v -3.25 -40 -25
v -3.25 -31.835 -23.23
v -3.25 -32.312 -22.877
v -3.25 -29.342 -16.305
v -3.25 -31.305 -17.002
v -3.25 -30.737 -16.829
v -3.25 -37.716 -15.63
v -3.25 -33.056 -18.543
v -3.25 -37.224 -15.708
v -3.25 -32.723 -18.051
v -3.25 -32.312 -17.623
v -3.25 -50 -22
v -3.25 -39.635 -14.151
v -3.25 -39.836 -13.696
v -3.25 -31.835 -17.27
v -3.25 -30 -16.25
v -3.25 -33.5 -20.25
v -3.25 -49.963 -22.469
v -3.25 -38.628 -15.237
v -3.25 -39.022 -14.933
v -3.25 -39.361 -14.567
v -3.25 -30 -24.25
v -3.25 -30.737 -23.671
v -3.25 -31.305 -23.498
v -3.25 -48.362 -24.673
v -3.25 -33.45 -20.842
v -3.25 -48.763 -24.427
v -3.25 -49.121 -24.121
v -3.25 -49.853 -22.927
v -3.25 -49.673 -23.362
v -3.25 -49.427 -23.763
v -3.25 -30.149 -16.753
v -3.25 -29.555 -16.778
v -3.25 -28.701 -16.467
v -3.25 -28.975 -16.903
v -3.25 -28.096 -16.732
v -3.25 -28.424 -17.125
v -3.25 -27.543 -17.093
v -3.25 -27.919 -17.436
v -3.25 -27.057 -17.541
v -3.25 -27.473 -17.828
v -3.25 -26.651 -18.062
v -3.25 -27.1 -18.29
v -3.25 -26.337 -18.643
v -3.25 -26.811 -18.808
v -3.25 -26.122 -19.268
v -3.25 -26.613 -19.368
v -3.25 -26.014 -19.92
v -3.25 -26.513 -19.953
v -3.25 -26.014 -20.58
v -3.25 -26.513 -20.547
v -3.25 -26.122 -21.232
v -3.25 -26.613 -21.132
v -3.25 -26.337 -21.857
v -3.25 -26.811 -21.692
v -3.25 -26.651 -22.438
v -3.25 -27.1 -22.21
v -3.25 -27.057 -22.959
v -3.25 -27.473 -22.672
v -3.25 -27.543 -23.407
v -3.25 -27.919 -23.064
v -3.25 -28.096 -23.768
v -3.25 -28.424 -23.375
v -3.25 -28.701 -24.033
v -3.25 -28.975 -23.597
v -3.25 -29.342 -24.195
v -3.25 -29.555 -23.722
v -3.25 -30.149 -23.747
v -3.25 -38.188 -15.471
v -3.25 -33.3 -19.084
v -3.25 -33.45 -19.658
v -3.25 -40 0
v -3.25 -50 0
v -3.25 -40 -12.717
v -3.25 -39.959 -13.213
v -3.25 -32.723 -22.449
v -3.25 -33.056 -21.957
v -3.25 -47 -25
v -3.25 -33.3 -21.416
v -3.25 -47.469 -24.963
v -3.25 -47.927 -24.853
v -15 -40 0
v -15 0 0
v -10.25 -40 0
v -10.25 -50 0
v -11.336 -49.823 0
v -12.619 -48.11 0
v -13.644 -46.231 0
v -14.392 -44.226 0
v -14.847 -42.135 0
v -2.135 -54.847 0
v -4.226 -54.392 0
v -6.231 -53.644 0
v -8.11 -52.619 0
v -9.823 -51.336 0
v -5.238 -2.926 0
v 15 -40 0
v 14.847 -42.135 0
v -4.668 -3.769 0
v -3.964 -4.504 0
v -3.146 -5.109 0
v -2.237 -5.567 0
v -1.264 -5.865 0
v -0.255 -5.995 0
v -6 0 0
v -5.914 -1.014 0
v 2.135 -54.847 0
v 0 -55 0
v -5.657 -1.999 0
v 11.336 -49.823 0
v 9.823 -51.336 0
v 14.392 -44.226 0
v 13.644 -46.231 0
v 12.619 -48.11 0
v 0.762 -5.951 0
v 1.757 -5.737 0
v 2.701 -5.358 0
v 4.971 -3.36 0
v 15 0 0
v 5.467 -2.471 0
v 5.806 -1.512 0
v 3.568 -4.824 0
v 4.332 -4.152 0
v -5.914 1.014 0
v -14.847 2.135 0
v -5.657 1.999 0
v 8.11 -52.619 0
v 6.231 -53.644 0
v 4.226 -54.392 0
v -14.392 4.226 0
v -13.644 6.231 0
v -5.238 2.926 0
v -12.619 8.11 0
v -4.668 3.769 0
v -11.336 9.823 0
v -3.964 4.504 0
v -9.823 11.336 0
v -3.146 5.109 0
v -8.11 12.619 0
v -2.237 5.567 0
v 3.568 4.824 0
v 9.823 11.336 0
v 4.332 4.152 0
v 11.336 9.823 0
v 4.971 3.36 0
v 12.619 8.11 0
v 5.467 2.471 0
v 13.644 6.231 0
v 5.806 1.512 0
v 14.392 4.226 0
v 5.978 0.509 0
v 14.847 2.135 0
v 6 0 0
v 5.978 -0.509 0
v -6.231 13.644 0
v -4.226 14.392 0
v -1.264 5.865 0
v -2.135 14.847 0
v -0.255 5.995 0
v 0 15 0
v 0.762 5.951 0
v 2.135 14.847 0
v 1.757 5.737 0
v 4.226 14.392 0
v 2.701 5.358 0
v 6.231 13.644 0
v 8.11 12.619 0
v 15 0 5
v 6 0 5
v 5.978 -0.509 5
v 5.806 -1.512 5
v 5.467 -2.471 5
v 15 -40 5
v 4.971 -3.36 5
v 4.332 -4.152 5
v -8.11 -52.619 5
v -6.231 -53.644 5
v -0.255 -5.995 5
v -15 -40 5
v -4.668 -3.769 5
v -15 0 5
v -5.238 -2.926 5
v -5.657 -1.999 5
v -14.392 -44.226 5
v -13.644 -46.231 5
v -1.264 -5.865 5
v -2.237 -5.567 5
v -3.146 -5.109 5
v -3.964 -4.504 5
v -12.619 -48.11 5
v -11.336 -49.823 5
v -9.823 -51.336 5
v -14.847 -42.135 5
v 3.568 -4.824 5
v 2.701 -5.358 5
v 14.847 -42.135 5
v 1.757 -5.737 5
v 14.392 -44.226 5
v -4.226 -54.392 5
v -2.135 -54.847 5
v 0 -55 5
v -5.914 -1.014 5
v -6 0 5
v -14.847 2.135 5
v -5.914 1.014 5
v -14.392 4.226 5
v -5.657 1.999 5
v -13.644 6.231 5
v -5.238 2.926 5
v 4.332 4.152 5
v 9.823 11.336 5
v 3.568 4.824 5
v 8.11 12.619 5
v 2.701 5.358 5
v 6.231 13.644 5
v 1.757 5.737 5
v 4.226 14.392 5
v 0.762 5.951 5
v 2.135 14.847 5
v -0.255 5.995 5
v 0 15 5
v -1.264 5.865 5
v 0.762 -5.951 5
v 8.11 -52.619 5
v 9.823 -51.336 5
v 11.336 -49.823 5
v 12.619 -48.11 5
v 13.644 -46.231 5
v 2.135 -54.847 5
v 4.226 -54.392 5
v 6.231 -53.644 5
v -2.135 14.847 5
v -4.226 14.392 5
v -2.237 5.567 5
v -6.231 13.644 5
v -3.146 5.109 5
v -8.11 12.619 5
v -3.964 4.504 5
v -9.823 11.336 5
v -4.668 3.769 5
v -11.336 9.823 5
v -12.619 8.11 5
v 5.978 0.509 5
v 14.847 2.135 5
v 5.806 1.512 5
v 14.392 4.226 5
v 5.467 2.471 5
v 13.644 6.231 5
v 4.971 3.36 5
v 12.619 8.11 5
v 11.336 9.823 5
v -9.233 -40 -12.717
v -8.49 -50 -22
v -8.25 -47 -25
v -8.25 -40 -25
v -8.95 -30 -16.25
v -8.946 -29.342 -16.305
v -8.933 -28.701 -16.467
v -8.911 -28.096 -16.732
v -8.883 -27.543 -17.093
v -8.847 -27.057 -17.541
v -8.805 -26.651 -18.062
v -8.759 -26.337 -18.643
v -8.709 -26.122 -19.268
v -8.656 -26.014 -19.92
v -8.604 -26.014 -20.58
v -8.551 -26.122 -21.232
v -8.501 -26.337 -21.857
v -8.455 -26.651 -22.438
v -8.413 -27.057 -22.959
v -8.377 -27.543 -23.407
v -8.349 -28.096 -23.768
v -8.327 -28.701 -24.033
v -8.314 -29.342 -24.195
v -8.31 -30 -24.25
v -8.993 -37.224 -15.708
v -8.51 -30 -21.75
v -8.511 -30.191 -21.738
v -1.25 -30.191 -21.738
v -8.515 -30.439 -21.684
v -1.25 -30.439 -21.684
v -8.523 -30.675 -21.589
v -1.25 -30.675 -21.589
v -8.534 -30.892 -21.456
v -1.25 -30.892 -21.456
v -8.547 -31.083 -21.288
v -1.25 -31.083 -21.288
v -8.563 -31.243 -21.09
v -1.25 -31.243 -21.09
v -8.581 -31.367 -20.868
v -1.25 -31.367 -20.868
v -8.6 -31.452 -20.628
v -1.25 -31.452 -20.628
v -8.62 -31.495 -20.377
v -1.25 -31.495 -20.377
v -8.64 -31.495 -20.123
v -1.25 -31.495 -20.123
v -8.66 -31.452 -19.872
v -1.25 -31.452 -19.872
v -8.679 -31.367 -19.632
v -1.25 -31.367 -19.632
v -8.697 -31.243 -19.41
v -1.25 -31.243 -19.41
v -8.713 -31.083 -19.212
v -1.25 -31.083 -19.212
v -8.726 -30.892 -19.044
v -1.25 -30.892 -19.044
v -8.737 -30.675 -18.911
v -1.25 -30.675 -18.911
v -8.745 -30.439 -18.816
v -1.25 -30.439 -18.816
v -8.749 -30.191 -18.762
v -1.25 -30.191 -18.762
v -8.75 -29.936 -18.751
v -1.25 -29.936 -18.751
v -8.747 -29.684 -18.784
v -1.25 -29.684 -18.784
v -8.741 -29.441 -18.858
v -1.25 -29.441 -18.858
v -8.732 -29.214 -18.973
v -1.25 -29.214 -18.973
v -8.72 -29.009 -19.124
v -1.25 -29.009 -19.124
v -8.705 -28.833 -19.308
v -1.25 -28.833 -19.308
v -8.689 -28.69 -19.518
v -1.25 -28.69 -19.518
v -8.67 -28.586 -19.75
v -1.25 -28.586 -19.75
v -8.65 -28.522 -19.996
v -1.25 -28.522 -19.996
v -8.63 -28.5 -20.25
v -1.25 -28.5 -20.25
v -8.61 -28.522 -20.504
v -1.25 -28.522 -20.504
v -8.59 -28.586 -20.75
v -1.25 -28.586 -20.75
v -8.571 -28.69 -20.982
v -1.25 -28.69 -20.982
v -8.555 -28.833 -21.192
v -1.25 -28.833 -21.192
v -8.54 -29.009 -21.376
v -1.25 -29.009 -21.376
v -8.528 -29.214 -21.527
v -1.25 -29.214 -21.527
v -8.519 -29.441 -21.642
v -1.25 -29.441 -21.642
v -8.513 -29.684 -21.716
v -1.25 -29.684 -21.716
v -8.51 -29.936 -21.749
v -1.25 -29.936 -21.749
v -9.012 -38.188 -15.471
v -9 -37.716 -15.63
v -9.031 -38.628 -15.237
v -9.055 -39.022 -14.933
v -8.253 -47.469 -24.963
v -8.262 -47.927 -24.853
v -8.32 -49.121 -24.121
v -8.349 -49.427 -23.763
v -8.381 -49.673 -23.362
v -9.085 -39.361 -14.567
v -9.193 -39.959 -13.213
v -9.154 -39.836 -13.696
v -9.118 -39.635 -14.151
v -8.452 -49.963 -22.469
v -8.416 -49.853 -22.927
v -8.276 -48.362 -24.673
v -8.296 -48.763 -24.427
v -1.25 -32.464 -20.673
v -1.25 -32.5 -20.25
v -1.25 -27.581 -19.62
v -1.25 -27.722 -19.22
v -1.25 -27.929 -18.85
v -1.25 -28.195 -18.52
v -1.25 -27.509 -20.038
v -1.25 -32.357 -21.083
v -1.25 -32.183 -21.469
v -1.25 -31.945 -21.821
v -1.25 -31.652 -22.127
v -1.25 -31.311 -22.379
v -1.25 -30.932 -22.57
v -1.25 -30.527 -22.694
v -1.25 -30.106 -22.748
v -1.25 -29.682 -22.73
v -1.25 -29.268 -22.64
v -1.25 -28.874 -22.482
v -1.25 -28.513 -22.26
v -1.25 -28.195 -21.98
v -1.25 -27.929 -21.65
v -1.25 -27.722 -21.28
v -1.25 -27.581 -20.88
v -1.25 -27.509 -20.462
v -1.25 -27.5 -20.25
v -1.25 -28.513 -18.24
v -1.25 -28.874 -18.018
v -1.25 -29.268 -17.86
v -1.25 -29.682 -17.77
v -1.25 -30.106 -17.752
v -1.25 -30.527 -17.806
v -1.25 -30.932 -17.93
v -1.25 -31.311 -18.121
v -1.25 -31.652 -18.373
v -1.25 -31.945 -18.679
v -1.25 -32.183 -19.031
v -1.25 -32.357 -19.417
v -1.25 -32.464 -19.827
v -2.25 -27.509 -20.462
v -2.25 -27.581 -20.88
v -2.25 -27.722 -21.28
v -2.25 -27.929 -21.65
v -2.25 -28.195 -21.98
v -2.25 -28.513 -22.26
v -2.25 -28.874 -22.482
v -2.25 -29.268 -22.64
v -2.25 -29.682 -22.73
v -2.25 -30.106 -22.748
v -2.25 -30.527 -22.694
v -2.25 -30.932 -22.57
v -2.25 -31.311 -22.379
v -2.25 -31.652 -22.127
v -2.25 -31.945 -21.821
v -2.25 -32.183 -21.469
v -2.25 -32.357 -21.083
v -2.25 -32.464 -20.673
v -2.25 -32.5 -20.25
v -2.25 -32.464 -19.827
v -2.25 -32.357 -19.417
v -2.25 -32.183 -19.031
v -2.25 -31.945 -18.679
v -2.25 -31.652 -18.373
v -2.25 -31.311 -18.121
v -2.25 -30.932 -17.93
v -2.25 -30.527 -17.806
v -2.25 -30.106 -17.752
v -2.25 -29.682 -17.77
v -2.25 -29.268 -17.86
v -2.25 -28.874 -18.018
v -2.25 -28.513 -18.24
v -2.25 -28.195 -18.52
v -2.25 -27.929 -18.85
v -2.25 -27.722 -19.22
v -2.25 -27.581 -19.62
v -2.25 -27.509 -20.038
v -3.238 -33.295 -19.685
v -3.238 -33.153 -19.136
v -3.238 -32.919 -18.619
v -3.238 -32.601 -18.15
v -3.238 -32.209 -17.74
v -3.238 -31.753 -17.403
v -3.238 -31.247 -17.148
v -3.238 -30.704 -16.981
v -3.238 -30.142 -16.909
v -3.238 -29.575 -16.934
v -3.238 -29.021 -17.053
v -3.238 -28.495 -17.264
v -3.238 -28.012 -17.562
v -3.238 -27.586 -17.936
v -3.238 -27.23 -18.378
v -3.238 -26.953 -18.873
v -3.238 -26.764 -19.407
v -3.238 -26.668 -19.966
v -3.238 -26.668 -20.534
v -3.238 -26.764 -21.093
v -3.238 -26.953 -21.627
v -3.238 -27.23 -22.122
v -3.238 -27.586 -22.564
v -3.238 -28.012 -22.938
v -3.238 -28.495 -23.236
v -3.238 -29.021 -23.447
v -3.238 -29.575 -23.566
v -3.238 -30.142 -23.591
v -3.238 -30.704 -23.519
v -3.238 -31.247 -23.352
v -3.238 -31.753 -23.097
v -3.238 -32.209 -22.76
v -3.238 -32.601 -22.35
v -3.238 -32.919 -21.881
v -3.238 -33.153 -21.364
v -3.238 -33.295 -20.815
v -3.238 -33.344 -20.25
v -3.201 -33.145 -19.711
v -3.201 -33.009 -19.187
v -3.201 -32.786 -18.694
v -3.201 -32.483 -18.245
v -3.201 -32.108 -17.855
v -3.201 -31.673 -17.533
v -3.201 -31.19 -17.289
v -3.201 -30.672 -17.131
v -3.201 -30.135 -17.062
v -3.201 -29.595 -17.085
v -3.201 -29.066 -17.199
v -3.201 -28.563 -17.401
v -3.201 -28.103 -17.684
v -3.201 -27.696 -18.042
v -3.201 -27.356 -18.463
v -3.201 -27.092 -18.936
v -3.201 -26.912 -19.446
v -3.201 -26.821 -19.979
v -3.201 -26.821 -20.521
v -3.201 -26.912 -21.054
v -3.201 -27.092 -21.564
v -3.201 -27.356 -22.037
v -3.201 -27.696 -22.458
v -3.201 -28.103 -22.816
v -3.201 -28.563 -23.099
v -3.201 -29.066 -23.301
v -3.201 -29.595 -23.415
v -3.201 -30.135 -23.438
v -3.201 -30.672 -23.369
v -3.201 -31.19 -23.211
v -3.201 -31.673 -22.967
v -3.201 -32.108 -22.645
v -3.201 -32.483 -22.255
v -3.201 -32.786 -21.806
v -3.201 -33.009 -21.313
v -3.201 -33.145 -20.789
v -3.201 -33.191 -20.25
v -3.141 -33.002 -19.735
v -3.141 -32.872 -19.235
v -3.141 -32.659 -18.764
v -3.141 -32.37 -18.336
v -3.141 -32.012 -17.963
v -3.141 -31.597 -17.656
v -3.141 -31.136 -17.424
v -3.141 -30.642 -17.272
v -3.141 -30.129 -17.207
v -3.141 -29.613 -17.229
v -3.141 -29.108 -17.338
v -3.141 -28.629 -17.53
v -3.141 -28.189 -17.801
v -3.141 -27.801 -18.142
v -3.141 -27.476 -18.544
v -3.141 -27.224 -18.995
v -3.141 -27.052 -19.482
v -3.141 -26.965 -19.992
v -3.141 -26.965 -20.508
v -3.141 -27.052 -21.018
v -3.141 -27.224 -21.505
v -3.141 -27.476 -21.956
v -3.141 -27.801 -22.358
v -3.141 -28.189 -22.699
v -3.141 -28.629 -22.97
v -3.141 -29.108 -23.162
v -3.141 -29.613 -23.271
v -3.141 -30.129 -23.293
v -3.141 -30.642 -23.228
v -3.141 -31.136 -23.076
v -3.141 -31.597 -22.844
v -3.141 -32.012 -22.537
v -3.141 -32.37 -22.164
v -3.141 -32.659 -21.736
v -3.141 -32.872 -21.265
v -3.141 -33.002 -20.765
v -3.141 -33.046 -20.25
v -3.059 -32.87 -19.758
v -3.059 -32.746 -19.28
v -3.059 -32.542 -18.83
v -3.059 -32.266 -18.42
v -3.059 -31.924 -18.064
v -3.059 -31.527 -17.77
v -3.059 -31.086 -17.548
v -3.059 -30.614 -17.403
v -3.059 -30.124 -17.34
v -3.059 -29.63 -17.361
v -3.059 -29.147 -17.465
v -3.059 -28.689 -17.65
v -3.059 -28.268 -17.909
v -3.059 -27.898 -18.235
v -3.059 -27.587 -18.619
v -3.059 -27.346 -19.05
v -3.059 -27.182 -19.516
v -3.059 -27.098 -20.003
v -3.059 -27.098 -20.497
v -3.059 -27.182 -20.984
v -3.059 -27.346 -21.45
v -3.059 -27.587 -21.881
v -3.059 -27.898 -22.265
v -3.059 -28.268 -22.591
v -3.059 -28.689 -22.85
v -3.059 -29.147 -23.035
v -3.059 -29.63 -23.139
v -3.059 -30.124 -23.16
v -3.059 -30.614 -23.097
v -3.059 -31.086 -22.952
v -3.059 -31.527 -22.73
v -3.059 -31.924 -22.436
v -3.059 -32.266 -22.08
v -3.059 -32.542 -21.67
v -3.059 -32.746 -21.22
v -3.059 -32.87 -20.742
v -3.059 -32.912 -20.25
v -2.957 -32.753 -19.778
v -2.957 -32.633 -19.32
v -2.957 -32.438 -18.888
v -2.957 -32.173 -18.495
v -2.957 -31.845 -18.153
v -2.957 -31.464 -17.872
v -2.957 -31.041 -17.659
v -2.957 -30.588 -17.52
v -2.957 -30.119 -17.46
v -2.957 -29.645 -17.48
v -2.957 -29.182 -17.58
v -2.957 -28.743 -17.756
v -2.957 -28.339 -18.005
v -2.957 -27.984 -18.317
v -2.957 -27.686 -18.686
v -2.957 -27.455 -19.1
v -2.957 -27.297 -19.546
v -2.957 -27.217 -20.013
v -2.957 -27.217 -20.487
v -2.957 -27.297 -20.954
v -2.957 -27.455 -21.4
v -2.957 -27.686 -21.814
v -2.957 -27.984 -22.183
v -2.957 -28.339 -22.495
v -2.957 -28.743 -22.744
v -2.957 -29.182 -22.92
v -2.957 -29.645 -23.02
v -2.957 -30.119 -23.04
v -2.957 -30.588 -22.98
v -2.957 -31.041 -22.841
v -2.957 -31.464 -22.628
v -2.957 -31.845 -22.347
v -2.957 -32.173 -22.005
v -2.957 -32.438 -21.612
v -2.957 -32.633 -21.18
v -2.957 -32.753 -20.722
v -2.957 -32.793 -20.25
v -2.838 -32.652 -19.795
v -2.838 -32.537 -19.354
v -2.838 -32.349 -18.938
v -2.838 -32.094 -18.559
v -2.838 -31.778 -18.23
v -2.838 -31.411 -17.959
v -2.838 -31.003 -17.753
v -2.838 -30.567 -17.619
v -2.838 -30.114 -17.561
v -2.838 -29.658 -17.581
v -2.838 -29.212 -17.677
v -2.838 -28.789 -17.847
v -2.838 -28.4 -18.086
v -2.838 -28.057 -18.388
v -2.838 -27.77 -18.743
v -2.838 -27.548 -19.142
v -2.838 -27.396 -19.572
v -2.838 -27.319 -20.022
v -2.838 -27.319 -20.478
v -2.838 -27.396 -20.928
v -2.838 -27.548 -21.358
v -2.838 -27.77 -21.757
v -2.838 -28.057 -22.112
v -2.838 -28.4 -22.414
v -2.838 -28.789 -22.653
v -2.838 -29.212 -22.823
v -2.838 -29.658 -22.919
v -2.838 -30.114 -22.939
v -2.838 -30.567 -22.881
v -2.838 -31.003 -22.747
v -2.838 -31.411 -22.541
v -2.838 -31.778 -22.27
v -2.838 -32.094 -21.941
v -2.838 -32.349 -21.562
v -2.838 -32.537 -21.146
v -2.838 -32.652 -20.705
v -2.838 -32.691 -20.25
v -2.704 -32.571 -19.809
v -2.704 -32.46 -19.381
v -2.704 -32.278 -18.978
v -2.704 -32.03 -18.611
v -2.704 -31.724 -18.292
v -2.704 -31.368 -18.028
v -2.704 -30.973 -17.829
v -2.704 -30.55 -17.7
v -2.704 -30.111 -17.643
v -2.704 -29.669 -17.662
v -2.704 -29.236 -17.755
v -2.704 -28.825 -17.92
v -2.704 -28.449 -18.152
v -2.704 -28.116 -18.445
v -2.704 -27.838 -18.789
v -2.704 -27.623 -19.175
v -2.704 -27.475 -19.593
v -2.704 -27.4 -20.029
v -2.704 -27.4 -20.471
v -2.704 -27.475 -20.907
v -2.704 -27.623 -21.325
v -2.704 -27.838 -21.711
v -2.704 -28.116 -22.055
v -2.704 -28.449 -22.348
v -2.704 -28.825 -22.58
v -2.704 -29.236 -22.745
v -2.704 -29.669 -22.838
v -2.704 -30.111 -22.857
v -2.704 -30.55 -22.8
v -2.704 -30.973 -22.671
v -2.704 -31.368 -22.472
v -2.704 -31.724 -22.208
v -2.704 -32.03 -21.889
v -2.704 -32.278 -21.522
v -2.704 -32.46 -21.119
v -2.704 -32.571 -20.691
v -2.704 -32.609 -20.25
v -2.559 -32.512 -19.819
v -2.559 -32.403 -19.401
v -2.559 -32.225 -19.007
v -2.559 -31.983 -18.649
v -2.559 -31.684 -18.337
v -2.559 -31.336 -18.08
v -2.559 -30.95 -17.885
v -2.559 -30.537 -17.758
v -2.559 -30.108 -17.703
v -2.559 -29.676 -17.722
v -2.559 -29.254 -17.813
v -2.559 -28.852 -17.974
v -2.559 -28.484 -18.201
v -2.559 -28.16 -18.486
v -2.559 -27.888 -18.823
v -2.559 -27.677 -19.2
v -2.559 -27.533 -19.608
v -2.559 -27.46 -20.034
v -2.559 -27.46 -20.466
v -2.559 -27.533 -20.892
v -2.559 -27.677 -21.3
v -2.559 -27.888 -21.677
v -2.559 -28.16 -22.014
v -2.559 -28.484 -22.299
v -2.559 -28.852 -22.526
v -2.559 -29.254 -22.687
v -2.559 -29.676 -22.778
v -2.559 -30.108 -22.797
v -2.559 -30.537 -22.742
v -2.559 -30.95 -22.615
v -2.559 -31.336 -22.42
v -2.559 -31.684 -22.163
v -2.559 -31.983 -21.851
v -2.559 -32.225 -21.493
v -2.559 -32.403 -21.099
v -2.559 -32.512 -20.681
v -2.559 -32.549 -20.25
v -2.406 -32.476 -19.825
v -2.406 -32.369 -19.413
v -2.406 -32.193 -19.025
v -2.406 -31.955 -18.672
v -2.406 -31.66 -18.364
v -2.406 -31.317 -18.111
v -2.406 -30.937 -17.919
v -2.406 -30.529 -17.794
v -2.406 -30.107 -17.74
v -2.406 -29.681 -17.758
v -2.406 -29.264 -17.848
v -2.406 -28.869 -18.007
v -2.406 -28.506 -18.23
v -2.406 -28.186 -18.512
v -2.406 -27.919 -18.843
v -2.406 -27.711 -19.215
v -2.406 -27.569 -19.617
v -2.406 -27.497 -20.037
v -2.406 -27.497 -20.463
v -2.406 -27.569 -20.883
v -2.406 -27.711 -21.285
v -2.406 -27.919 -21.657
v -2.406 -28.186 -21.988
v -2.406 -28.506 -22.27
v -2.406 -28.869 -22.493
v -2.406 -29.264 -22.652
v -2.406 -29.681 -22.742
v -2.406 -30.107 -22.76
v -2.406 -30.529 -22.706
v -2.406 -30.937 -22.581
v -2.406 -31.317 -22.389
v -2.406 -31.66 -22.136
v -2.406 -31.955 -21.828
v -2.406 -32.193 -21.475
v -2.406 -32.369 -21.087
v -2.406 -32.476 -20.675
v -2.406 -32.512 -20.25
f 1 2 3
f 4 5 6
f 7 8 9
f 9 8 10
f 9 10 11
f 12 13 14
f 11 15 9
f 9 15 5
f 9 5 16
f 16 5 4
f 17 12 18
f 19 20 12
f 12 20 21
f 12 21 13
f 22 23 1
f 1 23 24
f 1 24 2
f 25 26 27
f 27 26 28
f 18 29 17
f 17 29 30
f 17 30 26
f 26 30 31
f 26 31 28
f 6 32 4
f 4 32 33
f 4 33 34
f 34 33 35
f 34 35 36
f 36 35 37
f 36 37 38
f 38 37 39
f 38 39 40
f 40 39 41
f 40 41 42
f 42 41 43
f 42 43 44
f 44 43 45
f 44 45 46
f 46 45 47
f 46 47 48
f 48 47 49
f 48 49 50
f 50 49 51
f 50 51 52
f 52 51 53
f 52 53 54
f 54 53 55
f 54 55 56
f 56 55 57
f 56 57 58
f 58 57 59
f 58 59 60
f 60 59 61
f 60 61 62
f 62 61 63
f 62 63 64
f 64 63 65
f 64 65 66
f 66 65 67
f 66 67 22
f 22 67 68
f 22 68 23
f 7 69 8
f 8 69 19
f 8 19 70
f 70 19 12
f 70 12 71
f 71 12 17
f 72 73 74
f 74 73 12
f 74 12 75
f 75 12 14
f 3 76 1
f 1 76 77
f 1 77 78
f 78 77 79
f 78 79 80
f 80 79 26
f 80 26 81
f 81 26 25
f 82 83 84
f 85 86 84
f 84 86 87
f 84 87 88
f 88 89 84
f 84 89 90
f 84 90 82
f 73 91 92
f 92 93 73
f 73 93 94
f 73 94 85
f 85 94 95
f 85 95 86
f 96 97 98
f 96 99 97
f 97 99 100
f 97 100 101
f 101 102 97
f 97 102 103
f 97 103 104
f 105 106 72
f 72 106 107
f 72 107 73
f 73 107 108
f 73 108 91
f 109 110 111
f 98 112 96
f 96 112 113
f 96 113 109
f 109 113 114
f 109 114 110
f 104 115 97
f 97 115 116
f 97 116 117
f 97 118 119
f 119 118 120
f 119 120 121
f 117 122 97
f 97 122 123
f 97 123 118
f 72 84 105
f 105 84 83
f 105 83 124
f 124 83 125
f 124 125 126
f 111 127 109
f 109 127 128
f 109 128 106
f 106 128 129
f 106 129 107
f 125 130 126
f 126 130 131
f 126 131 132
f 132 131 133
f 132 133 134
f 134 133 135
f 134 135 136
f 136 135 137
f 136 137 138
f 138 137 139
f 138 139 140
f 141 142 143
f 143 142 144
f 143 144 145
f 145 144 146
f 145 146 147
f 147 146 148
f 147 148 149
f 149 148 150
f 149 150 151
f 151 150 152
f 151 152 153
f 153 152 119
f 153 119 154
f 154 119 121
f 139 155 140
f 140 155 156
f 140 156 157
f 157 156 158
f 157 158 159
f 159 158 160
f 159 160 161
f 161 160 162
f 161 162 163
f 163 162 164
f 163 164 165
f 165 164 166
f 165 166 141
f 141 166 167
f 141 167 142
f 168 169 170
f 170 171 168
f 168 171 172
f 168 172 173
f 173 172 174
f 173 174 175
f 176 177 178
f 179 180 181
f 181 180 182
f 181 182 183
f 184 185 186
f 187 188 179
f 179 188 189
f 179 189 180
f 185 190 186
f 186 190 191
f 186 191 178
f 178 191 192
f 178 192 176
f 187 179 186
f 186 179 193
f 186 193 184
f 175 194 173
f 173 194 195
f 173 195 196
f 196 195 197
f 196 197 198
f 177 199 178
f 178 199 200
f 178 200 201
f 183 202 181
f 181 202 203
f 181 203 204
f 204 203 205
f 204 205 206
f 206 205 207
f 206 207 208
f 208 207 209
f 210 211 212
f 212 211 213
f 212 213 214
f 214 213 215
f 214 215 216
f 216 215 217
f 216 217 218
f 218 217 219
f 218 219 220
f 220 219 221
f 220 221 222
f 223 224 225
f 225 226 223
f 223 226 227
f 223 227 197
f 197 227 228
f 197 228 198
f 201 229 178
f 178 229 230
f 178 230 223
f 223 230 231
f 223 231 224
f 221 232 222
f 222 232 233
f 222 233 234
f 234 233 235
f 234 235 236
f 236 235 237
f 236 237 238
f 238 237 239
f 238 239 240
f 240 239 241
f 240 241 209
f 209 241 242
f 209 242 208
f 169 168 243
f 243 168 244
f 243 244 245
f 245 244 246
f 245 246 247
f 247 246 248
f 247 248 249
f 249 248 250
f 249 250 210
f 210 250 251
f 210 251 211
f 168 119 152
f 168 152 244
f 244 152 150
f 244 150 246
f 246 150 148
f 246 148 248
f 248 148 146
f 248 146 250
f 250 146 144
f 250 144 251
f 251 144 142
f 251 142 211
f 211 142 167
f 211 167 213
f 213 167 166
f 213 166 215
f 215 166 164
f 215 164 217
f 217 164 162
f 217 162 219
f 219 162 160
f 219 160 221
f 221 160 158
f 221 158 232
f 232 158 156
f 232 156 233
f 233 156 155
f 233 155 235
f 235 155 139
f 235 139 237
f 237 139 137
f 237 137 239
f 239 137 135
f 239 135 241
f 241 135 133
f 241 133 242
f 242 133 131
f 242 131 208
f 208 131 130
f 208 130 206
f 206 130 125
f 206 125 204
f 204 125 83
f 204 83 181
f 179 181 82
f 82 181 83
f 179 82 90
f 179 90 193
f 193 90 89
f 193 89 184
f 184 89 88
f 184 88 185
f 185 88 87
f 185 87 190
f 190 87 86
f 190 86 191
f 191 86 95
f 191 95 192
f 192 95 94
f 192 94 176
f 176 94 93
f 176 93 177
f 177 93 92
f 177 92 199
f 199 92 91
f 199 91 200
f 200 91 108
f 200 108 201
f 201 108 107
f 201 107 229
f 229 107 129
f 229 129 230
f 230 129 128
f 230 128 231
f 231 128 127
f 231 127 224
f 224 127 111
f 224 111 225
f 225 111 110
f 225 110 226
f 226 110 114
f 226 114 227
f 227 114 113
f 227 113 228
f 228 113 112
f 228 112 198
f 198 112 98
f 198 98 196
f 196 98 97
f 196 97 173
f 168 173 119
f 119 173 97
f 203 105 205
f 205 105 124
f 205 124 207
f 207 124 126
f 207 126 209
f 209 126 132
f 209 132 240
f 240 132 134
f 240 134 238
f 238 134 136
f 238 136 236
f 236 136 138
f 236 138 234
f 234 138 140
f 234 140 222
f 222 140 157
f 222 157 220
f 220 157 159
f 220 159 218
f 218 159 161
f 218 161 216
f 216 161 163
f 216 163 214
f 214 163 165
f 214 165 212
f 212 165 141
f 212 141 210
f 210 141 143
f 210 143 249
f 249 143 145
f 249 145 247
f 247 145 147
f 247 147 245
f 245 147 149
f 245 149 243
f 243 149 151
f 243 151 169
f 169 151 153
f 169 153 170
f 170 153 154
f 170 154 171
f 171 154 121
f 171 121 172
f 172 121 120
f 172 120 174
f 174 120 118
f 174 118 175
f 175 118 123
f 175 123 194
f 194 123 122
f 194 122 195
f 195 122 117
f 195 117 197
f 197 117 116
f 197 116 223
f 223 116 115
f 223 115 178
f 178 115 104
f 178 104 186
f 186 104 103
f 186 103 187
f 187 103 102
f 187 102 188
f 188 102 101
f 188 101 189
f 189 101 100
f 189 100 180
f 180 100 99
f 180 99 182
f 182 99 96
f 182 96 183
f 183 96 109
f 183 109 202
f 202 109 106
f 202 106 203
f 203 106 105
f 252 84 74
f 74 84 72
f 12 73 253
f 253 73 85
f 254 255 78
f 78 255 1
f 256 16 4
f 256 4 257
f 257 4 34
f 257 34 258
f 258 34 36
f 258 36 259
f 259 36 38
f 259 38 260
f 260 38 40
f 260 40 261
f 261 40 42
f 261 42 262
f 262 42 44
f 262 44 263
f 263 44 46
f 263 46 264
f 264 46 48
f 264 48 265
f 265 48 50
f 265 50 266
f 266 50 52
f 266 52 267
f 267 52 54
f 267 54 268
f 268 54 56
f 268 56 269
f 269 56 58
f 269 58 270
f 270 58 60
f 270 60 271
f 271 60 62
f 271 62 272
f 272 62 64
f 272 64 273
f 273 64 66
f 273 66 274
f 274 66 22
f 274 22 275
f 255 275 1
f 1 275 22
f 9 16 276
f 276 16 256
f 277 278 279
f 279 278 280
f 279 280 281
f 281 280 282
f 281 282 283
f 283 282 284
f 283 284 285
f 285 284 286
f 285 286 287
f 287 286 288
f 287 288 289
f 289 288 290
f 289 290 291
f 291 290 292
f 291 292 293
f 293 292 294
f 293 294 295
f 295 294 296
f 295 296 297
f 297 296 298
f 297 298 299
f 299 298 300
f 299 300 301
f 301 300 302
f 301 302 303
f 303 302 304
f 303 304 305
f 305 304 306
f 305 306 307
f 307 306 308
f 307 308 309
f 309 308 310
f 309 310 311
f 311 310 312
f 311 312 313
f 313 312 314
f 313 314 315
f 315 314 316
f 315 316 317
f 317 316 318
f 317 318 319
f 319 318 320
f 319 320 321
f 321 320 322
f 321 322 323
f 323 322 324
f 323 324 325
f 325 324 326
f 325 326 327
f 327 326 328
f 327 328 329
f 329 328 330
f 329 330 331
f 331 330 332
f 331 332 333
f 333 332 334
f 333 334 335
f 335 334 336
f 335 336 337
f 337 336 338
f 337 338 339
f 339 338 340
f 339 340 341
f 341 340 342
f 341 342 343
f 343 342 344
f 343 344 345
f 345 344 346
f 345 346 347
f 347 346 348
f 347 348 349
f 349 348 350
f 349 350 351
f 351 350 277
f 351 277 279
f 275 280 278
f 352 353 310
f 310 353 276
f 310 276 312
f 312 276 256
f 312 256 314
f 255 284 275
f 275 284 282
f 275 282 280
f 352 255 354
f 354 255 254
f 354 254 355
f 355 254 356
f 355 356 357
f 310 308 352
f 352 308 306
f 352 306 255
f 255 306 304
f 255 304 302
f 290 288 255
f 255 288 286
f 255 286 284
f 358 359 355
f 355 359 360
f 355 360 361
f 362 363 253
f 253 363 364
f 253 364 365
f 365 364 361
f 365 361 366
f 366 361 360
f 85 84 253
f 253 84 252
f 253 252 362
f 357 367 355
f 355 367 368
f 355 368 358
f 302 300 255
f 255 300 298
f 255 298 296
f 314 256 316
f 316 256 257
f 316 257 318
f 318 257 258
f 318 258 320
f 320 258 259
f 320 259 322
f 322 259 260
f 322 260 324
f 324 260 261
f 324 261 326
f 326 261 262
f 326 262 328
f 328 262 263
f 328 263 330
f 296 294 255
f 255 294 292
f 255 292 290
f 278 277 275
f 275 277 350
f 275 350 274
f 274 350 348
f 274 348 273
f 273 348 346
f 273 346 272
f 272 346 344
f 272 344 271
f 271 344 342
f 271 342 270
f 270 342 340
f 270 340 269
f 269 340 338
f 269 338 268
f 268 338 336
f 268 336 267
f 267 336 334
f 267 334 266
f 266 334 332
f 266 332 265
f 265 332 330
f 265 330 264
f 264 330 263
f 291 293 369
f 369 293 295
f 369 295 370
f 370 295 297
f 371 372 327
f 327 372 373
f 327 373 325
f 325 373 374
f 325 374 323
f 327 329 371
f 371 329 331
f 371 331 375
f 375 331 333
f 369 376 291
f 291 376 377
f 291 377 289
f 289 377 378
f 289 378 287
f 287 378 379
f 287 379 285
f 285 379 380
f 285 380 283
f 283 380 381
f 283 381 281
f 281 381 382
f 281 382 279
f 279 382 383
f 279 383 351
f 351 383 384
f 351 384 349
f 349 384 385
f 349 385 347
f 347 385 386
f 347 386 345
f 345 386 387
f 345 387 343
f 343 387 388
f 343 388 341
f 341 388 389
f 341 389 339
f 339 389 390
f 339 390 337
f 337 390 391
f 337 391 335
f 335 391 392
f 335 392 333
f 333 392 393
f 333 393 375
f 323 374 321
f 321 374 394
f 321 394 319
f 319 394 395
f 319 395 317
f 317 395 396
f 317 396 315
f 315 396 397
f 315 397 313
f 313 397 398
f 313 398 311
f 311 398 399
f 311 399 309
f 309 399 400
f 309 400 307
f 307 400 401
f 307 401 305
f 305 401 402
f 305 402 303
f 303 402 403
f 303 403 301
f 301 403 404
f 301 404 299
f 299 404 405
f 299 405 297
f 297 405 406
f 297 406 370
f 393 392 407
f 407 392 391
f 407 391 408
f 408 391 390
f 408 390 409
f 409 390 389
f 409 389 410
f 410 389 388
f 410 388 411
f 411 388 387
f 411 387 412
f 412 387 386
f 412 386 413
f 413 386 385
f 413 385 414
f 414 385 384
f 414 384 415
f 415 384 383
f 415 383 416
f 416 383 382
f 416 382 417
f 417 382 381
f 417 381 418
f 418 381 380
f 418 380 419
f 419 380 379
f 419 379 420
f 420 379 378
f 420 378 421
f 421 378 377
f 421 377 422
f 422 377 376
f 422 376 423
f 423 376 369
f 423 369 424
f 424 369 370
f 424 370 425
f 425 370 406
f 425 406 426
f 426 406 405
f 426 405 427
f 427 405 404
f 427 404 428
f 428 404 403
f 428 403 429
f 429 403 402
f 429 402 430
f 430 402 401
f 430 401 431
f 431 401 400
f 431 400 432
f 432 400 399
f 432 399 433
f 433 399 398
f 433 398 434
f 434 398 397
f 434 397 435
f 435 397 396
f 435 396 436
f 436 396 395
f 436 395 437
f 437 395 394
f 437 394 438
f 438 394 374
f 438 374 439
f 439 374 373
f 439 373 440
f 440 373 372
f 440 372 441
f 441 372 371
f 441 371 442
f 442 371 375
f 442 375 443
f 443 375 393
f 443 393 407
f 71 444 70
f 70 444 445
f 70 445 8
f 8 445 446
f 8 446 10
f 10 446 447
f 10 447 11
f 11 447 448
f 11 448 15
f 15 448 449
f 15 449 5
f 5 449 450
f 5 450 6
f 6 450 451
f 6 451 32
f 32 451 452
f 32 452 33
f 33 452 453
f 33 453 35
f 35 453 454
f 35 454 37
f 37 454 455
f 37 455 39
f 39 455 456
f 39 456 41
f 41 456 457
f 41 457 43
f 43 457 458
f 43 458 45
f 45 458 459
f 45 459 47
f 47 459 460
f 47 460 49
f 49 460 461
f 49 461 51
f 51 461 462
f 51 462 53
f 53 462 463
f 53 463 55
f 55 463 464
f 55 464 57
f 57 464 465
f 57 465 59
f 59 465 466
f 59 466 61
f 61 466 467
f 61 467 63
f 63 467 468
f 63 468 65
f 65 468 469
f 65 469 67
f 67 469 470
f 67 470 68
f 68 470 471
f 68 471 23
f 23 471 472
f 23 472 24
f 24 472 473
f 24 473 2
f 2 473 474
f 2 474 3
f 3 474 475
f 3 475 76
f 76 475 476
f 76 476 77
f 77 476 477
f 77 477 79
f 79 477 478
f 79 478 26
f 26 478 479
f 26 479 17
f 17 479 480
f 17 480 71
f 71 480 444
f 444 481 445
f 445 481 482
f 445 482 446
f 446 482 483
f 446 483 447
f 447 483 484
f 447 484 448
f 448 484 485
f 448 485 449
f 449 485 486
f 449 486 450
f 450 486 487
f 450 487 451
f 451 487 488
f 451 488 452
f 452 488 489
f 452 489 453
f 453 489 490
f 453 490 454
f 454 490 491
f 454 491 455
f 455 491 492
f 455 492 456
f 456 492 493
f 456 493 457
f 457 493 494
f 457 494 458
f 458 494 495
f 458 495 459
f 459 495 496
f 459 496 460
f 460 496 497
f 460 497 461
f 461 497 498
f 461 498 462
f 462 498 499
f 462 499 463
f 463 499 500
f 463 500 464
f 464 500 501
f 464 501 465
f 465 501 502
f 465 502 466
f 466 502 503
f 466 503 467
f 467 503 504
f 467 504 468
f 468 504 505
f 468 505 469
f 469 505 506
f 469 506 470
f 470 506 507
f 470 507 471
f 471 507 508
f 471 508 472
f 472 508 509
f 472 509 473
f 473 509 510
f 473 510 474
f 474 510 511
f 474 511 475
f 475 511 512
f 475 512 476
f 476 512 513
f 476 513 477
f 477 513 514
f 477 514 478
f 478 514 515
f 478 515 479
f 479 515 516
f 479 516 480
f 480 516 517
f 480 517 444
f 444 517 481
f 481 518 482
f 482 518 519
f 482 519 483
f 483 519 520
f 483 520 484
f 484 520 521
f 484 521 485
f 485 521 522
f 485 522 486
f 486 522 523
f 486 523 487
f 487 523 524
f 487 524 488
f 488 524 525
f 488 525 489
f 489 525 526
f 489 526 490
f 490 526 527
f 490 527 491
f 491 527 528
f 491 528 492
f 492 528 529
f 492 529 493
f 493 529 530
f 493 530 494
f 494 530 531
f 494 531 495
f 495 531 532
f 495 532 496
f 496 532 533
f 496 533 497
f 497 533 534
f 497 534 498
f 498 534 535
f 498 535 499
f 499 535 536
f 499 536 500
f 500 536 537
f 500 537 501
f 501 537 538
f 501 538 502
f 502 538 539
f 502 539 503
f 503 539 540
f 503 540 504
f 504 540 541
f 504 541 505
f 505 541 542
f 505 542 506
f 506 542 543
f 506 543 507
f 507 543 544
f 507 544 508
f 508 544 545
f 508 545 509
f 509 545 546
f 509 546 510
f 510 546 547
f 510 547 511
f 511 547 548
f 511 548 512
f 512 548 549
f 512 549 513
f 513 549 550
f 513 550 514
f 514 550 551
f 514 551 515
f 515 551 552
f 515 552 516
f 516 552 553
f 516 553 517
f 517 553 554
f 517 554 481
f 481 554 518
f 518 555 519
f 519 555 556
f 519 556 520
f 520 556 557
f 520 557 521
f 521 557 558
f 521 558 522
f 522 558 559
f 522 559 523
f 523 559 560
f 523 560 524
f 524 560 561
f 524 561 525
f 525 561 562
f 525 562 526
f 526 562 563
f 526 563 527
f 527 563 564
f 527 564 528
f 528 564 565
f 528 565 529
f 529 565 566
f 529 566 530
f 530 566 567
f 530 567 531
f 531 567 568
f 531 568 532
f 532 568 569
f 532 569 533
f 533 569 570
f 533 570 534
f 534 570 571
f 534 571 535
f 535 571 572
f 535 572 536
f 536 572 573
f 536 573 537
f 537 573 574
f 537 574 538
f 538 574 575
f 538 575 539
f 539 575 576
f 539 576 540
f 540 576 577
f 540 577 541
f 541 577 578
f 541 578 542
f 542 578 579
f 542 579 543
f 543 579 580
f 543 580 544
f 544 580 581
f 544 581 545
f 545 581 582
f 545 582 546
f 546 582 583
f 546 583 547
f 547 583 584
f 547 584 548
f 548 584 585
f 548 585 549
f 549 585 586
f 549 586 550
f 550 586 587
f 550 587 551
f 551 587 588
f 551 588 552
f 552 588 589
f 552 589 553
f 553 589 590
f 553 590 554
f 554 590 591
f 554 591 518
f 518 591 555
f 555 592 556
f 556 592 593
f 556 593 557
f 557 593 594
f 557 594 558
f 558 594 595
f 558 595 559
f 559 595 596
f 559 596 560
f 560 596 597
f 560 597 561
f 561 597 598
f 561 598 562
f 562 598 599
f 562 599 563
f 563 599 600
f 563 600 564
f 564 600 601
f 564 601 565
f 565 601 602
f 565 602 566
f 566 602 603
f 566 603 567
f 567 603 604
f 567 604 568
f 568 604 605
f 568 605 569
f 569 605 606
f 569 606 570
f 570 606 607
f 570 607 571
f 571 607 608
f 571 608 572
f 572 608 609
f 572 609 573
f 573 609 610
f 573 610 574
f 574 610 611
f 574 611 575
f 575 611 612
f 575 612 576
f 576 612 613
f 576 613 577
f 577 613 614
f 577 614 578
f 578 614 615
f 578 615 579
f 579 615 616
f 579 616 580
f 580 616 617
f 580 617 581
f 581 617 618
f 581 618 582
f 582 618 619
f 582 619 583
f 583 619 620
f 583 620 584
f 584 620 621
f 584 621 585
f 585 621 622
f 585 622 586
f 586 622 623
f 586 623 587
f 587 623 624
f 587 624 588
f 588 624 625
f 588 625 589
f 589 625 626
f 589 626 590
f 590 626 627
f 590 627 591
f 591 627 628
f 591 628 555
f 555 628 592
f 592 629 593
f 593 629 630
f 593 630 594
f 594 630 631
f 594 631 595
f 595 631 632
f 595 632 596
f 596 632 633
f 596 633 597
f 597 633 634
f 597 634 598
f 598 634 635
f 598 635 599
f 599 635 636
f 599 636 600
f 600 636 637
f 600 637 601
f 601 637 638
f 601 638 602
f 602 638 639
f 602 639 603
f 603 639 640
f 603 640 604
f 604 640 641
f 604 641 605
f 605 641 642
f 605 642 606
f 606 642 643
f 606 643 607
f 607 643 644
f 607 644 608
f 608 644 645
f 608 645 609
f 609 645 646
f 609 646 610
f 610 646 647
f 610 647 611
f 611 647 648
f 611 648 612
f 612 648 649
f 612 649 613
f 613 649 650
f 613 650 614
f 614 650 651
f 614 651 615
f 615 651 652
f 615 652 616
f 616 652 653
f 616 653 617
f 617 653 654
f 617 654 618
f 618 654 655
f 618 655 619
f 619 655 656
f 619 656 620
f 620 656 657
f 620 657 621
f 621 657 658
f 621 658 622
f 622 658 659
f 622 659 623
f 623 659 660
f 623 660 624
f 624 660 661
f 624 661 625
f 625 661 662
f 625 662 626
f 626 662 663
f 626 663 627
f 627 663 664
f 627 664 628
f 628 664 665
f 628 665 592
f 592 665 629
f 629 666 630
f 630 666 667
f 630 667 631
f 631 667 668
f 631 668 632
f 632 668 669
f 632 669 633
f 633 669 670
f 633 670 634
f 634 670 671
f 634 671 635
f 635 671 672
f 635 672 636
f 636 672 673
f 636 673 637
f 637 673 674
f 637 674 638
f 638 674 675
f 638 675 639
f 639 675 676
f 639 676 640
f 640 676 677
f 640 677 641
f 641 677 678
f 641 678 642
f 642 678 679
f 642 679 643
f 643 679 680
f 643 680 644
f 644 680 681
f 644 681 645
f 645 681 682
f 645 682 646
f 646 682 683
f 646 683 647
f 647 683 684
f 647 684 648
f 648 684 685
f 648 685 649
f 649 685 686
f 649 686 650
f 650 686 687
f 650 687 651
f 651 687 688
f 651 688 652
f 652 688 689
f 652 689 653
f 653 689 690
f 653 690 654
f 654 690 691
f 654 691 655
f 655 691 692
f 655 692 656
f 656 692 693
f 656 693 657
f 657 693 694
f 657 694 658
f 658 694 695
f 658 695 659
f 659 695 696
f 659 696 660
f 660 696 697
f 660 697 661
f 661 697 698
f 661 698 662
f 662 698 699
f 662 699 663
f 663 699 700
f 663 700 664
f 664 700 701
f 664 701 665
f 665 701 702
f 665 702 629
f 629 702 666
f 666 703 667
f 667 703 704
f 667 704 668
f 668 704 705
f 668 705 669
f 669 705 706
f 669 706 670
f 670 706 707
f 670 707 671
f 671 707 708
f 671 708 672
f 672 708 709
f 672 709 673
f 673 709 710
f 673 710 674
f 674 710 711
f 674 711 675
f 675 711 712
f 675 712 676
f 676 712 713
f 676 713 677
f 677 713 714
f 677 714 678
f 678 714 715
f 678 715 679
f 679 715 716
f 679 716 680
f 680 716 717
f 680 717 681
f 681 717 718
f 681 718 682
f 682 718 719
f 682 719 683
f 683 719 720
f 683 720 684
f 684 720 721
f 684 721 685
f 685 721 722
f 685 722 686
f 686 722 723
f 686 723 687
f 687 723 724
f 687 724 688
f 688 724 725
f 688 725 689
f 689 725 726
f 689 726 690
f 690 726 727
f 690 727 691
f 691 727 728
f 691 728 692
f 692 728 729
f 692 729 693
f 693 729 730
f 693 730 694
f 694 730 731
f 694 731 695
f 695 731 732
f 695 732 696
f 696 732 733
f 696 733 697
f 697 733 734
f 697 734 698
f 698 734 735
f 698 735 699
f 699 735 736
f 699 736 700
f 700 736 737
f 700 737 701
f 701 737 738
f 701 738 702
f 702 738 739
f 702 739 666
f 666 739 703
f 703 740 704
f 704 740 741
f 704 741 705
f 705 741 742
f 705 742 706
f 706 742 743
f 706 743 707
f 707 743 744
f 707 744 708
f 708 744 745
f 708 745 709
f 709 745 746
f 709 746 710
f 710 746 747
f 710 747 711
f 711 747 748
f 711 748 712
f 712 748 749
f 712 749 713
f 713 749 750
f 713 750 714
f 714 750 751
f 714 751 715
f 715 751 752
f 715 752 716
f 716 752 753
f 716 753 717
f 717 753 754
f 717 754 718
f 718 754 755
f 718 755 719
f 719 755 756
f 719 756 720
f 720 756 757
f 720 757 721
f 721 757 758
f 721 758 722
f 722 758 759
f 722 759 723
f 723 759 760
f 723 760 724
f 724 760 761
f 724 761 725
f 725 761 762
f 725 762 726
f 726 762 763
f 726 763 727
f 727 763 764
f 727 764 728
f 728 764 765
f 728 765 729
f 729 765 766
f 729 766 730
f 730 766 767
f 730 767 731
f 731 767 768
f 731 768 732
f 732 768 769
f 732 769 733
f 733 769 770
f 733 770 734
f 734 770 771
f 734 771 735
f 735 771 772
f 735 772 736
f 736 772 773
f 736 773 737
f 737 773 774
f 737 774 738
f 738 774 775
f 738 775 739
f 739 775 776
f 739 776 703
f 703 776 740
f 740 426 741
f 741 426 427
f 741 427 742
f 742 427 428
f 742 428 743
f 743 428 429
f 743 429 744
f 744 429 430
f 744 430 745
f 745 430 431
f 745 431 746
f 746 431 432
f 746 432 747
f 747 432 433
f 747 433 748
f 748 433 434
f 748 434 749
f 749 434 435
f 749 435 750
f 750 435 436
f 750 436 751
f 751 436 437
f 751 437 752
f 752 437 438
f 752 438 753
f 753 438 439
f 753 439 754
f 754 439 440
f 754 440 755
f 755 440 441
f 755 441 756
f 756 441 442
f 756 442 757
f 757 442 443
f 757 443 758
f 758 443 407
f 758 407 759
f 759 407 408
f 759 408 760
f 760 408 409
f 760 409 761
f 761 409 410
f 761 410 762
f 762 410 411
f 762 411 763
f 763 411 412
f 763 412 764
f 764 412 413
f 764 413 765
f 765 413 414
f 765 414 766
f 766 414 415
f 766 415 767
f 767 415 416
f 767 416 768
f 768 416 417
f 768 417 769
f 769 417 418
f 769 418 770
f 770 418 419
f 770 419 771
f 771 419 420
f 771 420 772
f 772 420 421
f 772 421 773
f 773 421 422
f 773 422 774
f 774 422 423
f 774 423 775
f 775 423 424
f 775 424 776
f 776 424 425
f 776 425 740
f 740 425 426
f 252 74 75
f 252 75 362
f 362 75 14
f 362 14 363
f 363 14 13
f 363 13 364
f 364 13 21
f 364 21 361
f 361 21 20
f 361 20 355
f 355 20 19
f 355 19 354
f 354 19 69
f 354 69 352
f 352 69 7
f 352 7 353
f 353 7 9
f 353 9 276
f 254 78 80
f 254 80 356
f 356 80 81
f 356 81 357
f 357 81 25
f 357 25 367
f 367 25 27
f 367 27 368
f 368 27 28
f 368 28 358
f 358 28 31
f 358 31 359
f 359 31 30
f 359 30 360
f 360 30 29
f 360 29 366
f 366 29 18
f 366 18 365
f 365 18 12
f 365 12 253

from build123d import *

# Parameters (mm, degrees)
SKETCH1_R           = 6
BOSS_EXTRUDE1_DEPTH = 5
SKETCH2_W           = 5
SKETCH2_H           = 10
BOSS_EXTRUDE2_DEPTH = 25
SKETCH3_R           = 1.5
BOSS_EXTRUDE3_DEPTH = 5
BOSS_EXTRUDE4_DEPTH = 8
BOSS_EXTRUDE5_REACH = 66.735
SKETCH5_R           = 1.5
SKETCH6_R           = 2.5
SKETCH6_R_2         = 1.5
BOSS_EXTRUDE6_DEPTH = 2
FILLET1_R           = 1
FILLET2_R           = 3


with BuildPart() as part:
    # Sketch1 → Boss-Extrude1 (new body)
    with BuildSketch(Plane.XY):
        with BuildLine():
            Line((15, 0), (15, -40))
            ThreePointArc((15, -40), (0, -55), (-15, -40))
            Line((-15, -40), (-15, 0))
            ThreePointArc((-15, 0), (0, 15), (15, 0))
        make_face()
        Circle(SKETCH1_R, mode=Mode.SUBTRACT)
    extrude(amount=BOSS_EXTRUDE1_DEPTH)

    # Sketch2 → Boss-Extrude2 (add)
    with BuildSketch(Plane(origin=(0, 0, 0), x_dir=(-1, 0, 0), z_dir=(0, 0, -1))):
        with Locations((5.75, -45)):
            Rectangle(SKETCH2_W, SKETCH2_H)
    extrude(amount=BOSS_EXTRUDE2_DEPTH)

    # Sketch3 → Boss-Extrude3 (add)
    with BuildSketch(Plane(origin=(-3.25, 0, 0), x_dir=(0, 0, -1), z_dir=(1, 0, 0))):
        with BuildLine():
            Line((24.25, -30), (25, -40))
            Line((25, -40), (15.5, -40))
            Line((15.5, -40), (16.25, -30))
            ThreePointArc((16.25, -30), (20.25, -26), (24.25, -30))
        make_face()
        with Locations(Location((20.25, -30, 0), (0, 0, 90))):
            Circle(SKETCH3_R, mode=Mode.SUBTRACT)
    extrude(amount=-BOSS_EXTRUDE3_DEPTH)

    # Sketch4 → Boss-Extrude4 (add)
    with BuildSketch(Plane.XZ.offset(50)):
        Polygon((-8.25, -25), (-8.25, 0), (-10.25, 0), align=None)
    extrude(amount=-BOSS_EXTRUDE4_DEPTH)

    # Boss-Extrude5: up to this face of the body (flat: up to its plane)
    boss_extrude5_end = Plane(part.part.faces().sort_by_distance((-9.25, -46, -12.5))[0])
    # Sketch5 → Boss-Extrude5 (add, up to the picked face)
    with BuildSketch(Plane.ZY.offset(8.25), mode=Mode.PRIVATE) as boss_extrude5_sk1:
        with BuildLine():
            Line((-24.25, -30), (-25, -40))
            Line((-25, -40), (-25, -42))
            Line((-25, -42), (0, -42))
            Line((0, -42), (0, -40))
            Line((0, -40), (-15.5, -40))
            Line((-15.5, -40), (-16.25, -30))
            ThreePointArc((-16.25, -30), (-20.25, -26), (-24.25, -30))
        make_face()
        with Locations(Location((-20.25, -30, 0), (0, 0, 90))):
            Circle(SKETCH5_R, mode=Mode.SUBTRACT)
    boss_extrude5_tool1 = split(extrude(boss_extrude5_sk1.sketch, amount=BOSS_EXTRUDE5_REACH, mode=Mode.PRIVATE), bisect_by=boss_extrude5_end, keep=Keep.BOTH, mode=Mode.PRIVATE)
    add(boss_extrude5_tool1.solids().sort_by(Axis((-8.25, -36.153945, -17.759066), (-1, 0, 0)))[0])

    # Sketch6 → Boss-Extrude6 (add)
    with BuildSketch(Plane(origin=(-3.25, 0, 0), x_dir=(0, 0, -1), z_dir=(1, 0, 0))):
        with Locations(Location((20.25, -30, 0), (0, 0, 270))):
            Circle(SKETCH6_R)
        with Locations(Location((20.25, -30, 0), (0, 0, 90))):
            Circle(SKETCH6_R_2, mode=Mode.SUBTRACT)
    extrude(amount=BOSS_EXTRUDE6_DEPTH)

    # Fillet1
    fillet1_edges = [part.edges().sort_by_distance(p)[0] for p in [
        (-3.25, -27.5, -20.25),
    ]]
    fillet(fillet1_edges, radius=FILLET1_R)

    # Fillet2
    fillet2_edges = [part.edges().sort_by_distance(p)[0] for p in [
        (-5.75, -50, -25),
        (-6.13, -40, -15.5),
    ]]
    fillet(fillet2_edges, radius=FILLET2_R)


solid = part.part
